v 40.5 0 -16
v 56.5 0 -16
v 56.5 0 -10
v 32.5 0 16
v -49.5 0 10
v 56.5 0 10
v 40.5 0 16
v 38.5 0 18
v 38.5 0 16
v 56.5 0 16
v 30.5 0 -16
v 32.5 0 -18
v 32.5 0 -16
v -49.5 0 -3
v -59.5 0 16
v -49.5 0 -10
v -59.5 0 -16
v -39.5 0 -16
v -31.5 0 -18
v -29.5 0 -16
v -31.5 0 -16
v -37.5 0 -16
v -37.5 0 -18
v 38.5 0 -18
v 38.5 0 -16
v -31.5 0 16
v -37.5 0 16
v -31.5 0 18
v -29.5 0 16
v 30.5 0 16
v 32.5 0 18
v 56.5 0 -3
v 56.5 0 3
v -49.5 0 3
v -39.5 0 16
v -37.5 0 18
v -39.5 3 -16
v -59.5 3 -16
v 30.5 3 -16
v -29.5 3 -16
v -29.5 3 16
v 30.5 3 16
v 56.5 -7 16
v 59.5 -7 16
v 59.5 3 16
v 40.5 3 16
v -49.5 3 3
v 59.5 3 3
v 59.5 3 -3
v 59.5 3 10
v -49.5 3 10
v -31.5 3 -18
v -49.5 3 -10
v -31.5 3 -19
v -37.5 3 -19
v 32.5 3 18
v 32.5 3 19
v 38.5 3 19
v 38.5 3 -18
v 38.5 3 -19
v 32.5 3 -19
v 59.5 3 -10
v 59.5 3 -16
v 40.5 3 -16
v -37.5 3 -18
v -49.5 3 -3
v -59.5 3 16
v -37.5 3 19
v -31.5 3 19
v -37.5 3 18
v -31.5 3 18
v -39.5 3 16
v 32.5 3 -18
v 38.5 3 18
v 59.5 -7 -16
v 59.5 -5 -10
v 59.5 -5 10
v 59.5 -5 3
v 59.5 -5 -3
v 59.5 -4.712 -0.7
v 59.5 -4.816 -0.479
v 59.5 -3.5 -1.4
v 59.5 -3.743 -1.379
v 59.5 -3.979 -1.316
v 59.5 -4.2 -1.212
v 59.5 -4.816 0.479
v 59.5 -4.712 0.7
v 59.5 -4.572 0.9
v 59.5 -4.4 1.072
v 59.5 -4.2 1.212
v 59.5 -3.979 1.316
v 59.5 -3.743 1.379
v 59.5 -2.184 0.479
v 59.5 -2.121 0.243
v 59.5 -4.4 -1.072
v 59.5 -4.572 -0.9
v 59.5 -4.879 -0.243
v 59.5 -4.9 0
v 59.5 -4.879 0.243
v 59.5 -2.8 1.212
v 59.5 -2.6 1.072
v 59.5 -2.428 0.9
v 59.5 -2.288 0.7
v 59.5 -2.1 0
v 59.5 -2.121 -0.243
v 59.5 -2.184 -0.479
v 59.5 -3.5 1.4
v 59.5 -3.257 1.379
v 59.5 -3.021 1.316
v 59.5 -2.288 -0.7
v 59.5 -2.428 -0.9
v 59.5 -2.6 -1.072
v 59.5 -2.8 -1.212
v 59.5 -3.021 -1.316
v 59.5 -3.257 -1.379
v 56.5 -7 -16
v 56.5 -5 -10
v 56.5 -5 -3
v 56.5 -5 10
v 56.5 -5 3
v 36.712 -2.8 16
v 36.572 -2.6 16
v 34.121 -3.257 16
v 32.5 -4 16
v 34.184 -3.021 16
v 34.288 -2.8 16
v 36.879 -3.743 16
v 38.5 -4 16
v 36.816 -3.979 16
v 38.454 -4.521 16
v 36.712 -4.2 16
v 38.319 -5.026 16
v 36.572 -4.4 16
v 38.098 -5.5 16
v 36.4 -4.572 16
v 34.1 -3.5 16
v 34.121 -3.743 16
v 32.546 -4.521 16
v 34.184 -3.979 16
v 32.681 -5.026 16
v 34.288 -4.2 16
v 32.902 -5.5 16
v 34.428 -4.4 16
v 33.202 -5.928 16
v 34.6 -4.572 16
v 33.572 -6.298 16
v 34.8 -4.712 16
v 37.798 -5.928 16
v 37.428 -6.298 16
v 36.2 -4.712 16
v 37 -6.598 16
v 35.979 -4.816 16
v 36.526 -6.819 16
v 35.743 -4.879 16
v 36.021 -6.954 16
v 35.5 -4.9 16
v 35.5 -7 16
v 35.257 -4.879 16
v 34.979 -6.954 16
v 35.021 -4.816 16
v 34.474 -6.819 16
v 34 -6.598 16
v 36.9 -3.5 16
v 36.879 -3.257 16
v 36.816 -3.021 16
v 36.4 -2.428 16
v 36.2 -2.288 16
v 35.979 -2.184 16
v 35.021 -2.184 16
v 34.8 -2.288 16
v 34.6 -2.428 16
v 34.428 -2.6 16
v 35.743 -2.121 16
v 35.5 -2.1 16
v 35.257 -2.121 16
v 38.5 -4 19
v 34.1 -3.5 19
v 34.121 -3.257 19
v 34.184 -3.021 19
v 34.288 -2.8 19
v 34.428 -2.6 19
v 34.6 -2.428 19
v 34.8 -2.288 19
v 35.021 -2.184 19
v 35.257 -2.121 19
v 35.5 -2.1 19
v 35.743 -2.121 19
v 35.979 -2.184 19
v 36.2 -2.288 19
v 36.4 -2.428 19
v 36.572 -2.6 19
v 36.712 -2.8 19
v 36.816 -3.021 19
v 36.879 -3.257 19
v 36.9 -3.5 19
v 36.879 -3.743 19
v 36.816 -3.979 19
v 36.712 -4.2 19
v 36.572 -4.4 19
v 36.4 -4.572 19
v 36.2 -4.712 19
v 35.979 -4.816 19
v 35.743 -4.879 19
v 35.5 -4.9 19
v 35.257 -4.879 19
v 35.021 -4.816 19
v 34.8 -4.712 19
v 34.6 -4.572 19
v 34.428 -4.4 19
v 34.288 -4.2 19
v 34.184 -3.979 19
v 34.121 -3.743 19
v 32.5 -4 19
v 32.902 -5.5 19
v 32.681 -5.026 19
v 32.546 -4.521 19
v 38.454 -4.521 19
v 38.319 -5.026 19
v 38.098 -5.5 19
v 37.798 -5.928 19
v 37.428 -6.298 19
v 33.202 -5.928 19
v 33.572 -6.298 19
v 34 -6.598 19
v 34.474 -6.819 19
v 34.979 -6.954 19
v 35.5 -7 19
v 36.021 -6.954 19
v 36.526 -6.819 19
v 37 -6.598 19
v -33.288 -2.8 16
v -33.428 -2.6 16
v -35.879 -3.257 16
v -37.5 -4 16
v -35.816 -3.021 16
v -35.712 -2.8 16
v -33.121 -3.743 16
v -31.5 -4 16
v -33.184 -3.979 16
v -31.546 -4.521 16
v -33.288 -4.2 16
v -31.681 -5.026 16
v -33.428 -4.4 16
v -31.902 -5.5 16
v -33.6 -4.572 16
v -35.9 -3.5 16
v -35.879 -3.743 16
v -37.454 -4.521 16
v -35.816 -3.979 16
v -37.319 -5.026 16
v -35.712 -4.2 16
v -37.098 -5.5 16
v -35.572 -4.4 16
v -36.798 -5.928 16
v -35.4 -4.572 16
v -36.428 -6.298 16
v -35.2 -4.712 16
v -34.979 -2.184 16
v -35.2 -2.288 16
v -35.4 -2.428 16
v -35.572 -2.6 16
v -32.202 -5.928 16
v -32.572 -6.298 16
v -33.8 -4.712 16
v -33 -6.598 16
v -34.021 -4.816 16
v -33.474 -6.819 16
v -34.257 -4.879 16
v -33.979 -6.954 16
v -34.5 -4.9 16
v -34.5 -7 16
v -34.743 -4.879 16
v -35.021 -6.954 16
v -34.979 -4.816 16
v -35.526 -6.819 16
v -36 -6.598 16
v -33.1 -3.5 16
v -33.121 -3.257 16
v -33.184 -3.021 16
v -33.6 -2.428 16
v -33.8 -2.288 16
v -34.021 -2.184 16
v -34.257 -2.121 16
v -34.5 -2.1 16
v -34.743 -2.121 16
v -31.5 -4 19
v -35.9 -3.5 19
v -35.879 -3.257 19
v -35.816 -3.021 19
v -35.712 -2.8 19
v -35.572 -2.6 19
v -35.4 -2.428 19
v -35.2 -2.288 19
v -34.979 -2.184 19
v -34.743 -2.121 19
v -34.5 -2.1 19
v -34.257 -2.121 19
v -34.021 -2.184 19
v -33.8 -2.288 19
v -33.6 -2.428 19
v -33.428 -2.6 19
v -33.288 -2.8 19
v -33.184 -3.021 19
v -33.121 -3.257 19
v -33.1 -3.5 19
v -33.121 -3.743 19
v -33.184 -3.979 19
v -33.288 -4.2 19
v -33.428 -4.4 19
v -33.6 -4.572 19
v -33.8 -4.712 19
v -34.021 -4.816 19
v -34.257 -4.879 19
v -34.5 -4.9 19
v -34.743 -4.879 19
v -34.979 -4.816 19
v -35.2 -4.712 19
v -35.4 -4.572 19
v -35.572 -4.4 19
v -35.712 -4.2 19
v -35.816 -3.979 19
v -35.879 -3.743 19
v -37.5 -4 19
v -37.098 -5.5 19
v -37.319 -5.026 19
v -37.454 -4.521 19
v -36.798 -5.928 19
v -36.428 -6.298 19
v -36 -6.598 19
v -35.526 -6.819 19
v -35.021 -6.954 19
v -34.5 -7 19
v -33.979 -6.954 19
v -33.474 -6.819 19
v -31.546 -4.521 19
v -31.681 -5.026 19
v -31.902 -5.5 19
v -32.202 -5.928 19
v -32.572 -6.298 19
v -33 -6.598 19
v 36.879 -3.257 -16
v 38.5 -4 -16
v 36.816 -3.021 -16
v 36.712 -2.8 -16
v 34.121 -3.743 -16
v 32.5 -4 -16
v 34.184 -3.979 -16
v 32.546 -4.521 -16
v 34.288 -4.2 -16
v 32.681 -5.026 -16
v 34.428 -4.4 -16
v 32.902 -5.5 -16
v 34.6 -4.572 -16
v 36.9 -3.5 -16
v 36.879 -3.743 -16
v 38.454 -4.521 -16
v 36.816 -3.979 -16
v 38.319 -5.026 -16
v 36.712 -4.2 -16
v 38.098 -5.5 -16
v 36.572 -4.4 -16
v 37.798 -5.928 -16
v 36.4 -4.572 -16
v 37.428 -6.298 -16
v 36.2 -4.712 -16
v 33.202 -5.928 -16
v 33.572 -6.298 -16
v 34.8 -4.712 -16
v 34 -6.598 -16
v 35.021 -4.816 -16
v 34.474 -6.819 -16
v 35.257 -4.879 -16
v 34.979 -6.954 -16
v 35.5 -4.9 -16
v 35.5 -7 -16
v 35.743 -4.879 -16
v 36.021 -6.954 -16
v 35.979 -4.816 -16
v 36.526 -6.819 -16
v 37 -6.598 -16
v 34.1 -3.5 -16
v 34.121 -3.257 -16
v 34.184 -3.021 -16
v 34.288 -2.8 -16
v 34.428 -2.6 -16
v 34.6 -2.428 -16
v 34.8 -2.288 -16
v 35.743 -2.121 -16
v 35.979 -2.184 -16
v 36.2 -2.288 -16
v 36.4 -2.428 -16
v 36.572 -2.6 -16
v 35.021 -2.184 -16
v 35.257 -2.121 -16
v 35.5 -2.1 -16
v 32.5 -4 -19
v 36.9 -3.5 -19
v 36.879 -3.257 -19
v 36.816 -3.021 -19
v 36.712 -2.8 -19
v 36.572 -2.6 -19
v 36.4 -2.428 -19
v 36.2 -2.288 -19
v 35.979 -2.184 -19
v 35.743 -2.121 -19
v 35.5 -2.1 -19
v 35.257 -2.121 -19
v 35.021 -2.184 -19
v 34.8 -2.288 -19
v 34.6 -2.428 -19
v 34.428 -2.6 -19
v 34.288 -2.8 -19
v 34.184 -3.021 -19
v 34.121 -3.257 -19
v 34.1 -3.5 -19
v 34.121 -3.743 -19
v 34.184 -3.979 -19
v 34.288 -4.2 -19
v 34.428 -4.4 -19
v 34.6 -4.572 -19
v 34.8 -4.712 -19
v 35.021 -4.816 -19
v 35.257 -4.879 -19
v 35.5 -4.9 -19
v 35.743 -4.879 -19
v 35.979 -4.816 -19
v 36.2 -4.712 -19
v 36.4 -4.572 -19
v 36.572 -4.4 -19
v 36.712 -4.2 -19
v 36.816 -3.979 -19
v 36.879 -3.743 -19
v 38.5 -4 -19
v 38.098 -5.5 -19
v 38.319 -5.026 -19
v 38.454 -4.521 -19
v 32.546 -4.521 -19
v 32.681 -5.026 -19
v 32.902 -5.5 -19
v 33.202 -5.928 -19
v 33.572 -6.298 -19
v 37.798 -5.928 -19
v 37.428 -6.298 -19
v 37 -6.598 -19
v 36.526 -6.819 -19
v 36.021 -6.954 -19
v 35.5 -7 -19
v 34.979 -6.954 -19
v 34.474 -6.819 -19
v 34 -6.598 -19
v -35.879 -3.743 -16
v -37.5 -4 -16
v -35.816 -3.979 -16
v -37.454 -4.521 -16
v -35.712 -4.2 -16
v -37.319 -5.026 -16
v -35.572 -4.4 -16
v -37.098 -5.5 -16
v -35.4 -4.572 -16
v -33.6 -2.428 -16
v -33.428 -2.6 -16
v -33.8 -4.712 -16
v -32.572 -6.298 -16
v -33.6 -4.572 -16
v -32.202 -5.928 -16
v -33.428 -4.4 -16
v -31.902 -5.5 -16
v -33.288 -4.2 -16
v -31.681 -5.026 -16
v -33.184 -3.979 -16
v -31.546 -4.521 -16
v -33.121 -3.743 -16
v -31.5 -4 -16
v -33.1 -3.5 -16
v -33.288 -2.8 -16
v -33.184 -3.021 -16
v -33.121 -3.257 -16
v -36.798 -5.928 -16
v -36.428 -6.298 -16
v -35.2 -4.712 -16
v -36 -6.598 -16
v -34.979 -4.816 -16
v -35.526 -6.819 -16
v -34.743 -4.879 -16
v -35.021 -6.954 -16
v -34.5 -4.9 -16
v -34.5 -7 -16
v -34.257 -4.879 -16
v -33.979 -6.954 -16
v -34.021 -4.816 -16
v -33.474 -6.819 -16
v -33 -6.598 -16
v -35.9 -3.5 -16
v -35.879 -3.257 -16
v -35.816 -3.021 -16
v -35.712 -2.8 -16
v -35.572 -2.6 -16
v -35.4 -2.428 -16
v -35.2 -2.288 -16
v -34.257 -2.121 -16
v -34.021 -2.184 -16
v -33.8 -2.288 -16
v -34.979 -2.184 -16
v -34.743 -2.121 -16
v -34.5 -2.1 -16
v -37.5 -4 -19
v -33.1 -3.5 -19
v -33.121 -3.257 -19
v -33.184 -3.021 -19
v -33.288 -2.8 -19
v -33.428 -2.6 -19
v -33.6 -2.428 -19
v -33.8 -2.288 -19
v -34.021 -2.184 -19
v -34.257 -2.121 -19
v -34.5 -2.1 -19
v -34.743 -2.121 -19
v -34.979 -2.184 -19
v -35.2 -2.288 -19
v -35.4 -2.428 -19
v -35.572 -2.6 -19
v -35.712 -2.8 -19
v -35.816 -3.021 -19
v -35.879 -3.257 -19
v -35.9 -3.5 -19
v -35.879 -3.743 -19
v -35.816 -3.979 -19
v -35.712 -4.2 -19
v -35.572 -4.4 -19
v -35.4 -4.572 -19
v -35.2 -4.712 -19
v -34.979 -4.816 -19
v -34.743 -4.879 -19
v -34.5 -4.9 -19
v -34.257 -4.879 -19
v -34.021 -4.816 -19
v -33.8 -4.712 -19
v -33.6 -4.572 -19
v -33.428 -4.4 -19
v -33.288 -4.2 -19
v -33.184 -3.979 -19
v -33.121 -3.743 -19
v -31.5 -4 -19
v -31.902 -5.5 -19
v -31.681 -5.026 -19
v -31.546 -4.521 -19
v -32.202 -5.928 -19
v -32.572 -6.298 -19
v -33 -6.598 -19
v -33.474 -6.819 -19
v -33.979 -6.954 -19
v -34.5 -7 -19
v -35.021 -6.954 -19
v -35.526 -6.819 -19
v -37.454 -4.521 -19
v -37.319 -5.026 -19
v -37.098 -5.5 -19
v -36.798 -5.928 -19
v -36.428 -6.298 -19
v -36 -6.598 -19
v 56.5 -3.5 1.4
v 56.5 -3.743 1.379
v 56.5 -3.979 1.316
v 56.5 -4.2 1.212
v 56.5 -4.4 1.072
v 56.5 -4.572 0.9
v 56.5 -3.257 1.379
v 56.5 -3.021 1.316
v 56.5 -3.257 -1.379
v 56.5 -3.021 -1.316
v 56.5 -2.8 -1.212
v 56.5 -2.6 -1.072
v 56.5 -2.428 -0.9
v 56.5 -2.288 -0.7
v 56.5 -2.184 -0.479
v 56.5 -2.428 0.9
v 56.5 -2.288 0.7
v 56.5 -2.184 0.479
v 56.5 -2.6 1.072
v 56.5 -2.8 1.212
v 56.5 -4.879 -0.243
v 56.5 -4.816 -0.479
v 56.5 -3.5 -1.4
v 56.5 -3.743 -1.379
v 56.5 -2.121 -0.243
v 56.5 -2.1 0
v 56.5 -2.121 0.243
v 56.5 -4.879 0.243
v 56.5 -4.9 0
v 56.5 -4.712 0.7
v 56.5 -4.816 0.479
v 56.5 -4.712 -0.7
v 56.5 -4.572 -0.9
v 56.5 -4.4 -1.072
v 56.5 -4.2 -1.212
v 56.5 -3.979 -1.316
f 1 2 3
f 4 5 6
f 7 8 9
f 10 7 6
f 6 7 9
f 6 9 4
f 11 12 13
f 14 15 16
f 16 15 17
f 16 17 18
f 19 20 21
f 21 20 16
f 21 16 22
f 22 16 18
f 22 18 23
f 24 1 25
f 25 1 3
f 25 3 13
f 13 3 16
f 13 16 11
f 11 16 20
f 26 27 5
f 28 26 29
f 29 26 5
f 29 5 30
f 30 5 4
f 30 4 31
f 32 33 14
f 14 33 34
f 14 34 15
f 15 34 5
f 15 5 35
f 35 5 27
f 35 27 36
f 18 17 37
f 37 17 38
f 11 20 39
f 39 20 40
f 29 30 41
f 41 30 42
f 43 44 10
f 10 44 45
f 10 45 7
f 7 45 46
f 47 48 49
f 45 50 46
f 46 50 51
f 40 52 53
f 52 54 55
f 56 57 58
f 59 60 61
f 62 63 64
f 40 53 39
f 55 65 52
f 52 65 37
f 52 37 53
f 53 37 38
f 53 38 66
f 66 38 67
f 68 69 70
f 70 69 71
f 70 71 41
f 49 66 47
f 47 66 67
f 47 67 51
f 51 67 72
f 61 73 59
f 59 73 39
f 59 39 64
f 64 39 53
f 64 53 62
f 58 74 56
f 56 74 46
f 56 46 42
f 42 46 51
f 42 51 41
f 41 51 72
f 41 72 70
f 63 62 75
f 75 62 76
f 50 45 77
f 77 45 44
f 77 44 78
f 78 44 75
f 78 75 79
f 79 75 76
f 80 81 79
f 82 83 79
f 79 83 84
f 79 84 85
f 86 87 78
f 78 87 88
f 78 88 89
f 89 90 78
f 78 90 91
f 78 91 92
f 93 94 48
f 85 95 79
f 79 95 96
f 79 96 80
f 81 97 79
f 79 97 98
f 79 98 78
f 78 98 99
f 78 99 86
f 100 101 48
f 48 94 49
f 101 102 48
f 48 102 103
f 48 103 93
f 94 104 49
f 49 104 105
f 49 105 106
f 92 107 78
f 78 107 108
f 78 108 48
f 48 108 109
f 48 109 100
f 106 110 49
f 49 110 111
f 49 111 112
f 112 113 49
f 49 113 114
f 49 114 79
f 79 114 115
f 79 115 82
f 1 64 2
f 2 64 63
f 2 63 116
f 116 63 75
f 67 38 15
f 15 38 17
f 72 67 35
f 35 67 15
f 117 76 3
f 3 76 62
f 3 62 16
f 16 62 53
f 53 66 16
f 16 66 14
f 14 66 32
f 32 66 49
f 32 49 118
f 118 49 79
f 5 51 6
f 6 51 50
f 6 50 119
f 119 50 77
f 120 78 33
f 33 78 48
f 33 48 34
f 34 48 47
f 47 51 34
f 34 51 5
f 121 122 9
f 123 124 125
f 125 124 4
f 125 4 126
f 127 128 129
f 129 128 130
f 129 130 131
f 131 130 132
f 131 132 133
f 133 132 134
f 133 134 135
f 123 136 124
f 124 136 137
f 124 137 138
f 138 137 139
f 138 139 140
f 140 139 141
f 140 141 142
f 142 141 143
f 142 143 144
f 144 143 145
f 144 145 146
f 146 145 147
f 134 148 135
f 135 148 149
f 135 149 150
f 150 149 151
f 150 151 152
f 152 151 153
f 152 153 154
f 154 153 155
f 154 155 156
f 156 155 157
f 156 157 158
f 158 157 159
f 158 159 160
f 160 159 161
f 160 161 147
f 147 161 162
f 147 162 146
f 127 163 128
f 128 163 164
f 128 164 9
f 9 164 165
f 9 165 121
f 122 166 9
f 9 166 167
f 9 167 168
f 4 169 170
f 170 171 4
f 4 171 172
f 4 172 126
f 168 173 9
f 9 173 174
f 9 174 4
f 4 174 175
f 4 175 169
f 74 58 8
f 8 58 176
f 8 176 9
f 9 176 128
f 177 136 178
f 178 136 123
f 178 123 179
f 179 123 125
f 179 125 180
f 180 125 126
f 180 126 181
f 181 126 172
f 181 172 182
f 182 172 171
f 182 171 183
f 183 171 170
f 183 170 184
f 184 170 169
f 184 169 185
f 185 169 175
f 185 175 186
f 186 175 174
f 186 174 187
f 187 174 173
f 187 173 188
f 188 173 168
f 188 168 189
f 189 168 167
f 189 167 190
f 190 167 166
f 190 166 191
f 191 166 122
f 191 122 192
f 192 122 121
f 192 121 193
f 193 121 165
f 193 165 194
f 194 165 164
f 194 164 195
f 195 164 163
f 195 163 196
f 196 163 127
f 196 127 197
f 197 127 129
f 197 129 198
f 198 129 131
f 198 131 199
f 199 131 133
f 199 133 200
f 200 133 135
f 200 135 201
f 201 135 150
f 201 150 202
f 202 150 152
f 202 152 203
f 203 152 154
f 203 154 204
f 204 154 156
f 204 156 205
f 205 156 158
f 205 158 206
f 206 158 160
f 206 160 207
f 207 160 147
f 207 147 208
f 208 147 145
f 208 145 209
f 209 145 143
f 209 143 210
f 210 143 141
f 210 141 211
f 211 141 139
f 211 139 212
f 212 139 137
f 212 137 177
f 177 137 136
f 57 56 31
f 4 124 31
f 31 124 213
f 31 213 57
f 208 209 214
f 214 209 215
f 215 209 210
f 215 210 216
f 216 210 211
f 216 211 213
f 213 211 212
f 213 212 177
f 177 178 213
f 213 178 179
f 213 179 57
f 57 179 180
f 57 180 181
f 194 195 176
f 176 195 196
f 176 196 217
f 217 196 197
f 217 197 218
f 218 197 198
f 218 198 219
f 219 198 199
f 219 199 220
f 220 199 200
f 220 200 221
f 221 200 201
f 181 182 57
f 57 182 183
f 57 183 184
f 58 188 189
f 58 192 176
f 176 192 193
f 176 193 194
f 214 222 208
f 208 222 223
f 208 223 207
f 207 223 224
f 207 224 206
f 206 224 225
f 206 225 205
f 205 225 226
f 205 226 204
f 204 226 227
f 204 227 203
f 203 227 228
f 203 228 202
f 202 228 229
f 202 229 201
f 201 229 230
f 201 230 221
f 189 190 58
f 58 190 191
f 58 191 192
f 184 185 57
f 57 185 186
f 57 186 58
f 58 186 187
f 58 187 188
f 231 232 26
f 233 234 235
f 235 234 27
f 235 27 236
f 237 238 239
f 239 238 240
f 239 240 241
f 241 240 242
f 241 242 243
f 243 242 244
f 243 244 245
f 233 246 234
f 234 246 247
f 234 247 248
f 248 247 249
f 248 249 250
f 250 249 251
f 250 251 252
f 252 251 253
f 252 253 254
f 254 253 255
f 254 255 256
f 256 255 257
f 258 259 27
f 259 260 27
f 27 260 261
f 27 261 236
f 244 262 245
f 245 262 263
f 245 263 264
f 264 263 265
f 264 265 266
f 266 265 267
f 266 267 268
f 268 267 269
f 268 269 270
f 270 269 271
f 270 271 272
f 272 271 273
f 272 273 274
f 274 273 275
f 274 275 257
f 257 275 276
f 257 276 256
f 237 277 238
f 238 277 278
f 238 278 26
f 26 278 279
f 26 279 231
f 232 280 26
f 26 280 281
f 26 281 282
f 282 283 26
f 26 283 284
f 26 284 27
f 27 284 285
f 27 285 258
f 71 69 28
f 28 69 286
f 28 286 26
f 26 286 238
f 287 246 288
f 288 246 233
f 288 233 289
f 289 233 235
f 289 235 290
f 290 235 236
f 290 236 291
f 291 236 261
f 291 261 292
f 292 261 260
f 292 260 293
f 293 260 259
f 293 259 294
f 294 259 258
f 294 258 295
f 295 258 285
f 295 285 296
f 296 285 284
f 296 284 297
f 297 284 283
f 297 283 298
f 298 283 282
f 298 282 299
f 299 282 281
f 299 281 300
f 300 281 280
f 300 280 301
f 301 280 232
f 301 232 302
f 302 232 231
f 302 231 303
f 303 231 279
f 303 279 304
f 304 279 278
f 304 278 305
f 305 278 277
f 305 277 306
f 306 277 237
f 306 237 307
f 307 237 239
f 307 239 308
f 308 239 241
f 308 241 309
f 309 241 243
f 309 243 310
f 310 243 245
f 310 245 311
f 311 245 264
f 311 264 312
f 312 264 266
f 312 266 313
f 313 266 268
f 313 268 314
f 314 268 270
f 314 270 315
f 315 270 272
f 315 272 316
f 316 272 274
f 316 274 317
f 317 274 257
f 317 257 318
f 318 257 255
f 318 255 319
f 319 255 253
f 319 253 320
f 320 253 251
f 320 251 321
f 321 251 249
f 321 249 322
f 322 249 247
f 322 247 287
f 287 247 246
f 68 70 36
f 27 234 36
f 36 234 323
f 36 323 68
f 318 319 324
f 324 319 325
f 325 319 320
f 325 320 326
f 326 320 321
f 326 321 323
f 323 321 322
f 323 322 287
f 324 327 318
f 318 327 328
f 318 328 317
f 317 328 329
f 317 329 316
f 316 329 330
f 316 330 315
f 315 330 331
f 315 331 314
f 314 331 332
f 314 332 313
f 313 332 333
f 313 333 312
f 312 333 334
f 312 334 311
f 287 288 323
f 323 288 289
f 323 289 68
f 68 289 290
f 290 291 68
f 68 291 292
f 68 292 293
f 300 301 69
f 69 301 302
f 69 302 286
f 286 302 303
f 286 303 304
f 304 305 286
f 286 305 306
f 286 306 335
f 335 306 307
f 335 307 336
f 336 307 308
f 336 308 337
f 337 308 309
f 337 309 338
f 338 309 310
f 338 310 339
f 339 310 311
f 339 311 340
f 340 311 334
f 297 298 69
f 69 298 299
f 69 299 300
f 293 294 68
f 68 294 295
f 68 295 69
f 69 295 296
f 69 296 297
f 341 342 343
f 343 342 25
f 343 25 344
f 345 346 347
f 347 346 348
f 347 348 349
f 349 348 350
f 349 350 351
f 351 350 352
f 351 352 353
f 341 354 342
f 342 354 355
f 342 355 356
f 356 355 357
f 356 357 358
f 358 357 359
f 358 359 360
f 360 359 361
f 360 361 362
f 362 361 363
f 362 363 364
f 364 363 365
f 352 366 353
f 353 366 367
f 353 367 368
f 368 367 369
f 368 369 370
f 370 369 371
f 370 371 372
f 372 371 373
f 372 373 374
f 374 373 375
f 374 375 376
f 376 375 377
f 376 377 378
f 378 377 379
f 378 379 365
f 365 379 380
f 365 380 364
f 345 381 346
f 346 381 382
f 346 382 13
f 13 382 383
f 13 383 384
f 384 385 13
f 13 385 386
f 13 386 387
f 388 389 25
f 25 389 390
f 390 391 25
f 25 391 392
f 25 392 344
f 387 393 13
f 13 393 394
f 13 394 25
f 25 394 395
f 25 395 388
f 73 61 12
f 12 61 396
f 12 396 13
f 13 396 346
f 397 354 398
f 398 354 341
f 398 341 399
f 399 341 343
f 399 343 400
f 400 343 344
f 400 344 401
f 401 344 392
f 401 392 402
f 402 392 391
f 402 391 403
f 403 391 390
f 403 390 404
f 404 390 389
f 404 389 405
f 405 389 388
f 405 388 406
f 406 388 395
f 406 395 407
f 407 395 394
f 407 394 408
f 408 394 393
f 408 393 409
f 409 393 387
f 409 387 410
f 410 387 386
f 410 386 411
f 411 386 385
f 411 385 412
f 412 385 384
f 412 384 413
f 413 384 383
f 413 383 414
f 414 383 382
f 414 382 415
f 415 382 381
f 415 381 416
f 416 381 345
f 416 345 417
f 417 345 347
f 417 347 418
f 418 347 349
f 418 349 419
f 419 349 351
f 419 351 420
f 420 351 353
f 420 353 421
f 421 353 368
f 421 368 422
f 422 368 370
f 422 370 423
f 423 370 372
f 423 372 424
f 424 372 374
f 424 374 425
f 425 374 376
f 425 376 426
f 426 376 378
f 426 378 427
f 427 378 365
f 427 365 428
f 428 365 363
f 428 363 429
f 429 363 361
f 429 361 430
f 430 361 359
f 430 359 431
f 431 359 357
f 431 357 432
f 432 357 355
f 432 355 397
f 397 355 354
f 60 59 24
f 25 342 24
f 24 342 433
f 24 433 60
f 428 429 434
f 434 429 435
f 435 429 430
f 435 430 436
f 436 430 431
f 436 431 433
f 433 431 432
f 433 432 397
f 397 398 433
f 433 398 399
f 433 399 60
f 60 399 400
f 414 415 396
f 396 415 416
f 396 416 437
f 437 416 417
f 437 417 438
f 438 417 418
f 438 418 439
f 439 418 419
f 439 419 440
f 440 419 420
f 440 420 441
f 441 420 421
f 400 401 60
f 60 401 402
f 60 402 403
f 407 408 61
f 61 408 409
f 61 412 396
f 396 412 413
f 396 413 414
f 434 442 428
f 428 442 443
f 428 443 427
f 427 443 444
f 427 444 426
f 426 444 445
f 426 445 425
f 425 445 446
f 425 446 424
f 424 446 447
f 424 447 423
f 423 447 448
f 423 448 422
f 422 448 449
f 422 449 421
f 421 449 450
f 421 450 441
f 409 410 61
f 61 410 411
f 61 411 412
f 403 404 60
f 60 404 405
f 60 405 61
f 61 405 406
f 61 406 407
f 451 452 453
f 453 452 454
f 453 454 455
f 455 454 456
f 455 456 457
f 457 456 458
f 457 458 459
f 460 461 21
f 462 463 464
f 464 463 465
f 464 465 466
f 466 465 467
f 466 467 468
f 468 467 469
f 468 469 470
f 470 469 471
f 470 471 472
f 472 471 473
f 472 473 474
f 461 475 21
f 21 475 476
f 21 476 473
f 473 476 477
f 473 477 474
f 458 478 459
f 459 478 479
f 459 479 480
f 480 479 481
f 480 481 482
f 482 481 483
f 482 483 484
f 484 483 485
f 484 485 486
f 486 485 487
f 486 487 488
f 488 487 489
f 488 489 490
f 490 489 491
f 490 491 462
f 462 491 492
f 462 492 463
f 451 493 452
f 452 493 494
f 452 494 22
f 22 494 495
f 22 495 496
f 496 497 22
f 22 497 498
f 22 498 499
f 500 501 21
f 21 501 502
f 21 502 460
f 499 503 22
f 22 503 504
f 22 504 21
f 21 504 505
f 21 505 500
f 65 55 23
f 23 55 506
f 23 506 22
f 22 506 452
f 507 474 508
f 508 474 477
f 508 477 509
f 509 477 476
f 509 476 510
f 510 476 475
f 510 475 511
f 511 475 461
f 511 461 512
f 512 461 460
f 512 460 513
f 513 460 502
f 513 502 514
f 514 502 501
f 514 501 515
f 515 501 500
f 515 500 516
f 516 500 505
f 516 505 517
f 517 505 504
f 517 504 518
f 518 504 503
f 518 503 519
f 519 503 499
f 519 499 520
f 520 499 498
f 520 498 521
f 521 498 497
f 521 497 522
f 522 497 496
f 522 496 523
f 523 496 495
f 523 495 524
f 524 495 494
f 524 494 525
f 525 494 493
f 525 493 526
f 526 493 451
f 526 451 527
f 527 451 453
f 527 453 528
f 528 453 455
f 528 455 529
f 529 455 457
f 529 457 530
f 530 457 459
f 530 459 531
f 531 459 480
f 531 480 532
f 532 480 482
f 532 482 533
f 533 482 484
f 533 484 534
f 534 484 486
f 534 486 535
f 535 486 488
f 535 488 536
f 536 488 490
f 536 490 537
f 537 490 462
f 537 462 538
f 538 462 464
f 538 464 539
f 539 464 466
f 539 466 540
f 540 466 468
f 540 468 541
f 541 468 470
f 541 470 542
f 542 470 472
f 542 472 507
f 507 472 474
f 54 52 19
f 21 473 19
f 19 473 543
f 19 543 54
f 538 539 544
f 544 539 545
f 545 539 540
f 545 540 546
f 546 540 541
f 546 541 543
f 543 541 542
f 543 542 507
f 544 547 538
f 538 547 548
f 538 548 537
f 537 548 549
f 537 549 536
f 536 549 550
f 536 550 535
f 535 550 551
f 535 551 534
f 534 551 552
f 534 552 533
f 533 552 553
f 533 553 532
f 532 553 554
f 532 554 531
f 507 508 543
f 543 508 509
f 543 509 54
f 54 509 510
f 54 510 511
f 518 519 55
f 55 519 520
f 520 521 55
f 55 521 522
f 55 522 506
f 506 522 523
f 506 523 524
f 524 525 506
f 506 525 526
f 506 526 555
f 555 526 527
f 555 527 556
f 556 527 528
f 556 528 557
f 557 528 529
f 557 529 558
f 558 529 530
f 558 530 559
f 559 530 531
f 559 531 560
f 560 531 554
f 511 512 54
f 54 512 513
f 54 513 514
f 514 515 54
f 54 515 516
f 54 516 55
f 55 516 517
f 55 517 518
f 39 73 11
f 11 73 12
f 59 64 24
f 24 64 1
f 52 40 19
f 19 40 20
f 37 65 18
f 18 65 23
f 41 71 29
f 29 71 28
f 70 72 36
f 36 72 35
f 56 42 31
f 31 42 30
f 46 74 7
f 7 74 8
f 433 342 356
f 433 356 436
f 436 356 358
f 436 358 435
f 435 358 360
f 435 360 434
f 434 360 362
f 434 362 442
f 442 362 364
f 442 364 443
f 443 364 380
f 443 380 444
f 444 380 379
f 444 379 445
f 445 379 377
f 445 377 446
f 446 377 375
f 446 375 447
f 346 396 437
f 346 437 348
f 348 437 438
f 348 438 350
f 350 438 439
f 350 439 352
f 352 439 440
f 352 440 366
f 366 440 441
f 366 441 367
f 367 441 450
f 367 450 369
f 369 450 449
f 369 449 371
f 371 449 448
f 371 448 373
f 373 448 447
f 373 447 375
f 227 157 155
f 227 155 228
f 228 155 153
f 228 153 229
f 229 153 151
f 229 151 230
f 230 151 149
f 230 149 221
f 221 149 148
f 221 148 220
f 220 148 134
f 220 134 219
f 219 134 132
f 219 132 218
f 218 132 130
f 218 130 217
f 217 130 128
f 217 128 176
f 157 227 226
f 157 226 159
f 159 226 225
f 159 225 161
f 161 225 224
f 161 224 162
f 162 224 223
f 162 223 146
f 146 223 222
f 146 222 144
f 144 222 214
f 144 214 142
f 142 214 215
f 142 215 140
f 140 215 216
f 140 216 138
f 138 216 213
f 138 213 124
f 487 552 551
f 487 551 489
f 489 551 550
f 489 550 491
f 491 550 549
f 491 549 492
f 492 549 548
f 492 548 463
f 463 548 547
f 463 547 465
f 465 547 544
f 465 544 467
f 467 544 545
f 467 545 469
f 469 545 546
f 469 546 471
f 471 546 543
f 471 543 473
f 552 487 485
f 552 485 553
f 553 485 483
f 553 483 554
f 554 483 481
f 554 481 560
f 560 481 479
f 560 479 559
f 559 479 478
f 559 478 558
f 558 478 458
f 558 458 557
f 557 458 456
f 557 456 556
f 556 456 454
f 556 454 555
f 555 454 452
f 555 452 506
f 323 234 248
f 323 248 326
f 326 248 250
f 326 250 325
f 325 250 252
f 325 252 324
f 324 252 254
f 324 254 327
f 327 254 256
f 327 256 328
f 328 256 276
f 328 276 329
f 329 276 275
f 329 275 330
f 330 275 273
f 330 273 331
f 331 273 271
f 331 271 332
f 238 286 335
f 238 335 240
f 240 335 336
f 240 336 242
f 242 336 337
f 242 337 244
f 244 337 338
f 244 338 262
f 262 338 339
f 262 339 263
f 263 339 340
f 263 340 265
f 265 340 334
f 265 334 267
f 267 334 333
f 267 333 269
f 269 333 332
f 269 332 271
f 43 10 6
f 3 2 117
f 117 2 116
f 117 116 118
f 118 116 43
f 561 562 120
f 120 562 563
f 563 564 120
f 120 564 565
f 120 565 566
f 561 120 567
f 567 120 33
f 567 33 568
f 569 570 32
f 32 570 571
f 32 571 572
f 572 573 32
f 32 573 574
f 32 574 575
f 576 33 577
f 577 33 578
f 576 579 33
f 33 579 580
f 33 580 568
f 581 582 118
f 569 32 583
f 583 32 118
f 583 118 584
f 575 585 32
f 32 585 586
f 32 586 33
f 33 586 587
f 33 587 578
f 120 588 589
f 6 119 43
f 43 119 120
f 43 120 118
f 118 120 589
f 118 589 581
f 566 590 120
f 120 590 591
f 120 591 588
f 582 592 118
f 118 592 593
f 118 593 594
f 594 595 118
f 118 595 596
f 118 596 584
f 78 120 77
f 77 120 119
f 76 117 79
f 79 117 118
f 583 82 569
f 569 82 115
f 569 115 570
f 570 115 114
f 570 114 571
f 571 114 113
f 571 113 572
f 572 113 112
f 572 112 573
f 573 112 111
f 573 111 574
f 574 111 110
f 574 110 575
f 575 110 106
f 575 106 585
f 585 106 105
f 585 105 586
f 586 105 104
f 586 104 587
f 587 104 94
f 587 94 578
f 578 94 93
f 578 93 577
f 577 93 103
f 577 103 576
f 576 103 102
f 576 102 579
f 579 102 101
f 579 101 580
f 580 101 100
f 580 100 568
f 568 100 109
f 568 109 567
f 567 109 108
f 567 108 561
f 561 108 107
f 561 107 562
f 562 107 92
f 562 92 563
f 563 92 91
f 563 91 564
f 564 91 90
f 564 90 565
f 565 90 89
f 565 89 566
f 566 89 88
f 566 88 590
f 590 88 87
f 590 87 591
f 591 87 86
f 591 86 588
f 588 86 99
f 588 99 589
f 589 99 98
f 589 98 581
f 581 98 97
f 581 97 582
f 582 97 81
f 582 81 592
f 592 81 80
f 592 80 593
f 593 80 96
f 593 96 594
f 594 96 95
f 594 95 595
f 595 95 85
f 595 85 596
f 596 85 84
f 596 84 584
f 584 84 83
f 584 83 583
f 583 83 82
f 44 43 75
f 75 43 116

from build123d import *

# Parameters (mm, degrees)
SKETCH1_W           = 119
SKETCH1_H           = 32
SKETCH1_W_2         = 105
SKETCH1_H_2         = 7
BOSS_EXTRUDE1_DEPTH = 3
SKETCH2_W           = 6
SKETCH2_H           = 7
SKETCH2_R           = 1.4
SKETCH2_H_2         = 3
BOSS_EXTRUDE2_DEPTH = 3
CHAMFER1_SIZE       = 2
FILLET1_R           = 3
SKETCH3_W           = 3
SKETCH3_H           = 11
BOSS_EXTRUDE4_DEPTH = 32
SKETCH4_W           = 4
SKETCH4_H           = 7
CUT_EXTRUDE1_DEPTH  = 8
SKETCH5_R           = 1.4
CUT_EXTRUDE2_DEPTH  = 122.008264181
SKETCH6_W           = 32
SKETCH6_H           = 4
CUT_EXTRUDE3_DEPTH  = 10


with BuildPart() as part:
    # Sketch1 → Boss-Extrude1 (new body)
    with BuildSketch(Plane(origin=(0, 0, 0), x_dir=(1, 0, 0), z_dir=(0, 1, 0))):
        Rectangle(SKETCH1_W, SKETCH1_H)
        with Locations((3, 6.5)):
            Rectangle(SKETCH1_W_2, SKETCH1_H_2, mode=Mode.SUBTRACT)
        with Locations((3, -6.5)):
            Rectangle(SKETCH1_W_2, SKETCH1_H_2, mode=Mode.SUBTRACT)
    extrude(amount=BOSS_EXTRUDE1_DEPTH)

    # Sketch2 → Boss-Extrude2 (add)
    # profile 1 of 4: a face of its own
    with BuildSketch(Plane.XY.offset(16)):
        with Locations((35.5, -3.5)):
            Rectangle(SKETCH2_W, SKETCH2_H)
        with Locations((35.5, -3.5)):
            Circle(SKETCH2_R, mode=Mode.SUBTRACT)
    # profile 2 of 4: a face of its own
    with BuildSketch(Plane.XY.offset(16)):
        with Locations((35.5, 1.5)):
            Rectangle(SKETCH2_W, SKETCH2_H_2)
    # profile 3 of 4: a face of its own
    with BuildSketch(Plane.XY.offset(16)):
        with Locations((-34.5, -3.5)):
            Rectangle(SKETCH2_W, SKETCH2_H)
        with Locations((-34.5, -3.5)):
            Circle(SKETCH2_R, mode=Mode.SUBTRACT)
    # profile 4 of 4: a face of its own
    with BuildSketch(Plane.XY.offset(16)):
        with Locations((-34.5, 1.5)):
            Rectangle(SKETCH2_W, SKETCH2_H_2)
    boss_extrude2 = extrude(amount=BOSS_EXTRUDE2_DEPTH)

    # Mirror4: Boss-Extrude2 across plane
    add(boss_extrude2.mirror(Plane.XY))

    # Chamfer1
    chamfer1_edges = [part.edges().sort_by_distance(p)[0] for p in [
        (-31.5, 1.5, -16),
        (38.5, 1.5, 16),
        (32.5, 1.5, 16),
        (-37.5, 1.5, 16),
        (-31.5, 1.5, 16),
        (32.5, 1.5, -16),
        (38.5, 1.5, -16),
        (-37.5, 1.5, -16),
    ]]
    chamfer(chamfer1_edges, length=CHAMFER1_SIZE)

    # Fillet1
    fillet1_edges = [part.edges().sort_by_distance(p)[0] for p in [
        (32.5, -7, 17.5),
        (38.5, -7, 17.5),
        (-37.5, -7, 17.5),
        (-31.5, -7, 17.5),
        (38.5, -7, -17.5),
        (32.5, -7, -17.5),
        (-31.5, -7, -17.5),
        (-37.5, -7, -17.5),
    ]]
    fillet(fillet1_edges, radius=FILLET1_R - 0.0001)  # a hair under: the kernel refuses the full size

    # Sketch3 → Boss-Extrude4 (add)
    with BuildSketch(Plane(origin=(0, 0, -16), x_dir=(-1, 0, 0), z_dir=(0, 0, -1))):
        with Locations((-58, -5.5)):
            Rectangle(SKETCH3_W, SKETCH3_H)
    extrude(amount=-BOSS_EXTRUDE4_DEPTH)

    # Sketch4 → Cut-Extrude1 (cut)
    with BuildSketch(Plane(origin=(0, 3, 0), x_dir=(1, 0, 0), z_dir=(0, 1, 0))):
        with Locations((57.5, 6.5)):
            Rectangle(SKETCH4_W, SKETCH4_H)
        with Locations((57.5, -6.5)):
            Rectangle(SKETCH4_W, SKETCH4_H)
    extrude(amount=-CUT_EXTRUDE1_DEPTH, mode=Mode.SUBTRACT)

    # Sketch5 → Cut-Extrude2 (cut, through all)
    with BuildSketch(Plane(origin=(59.5, 0, 0), x_dir=(0, 0, -1), z_dir=(1, 0, 0))):
        with Locations((0, -3.5)):
            Circle(SKETCH5_R)
    extrude(amount=-CUT_EXTRUDE2_DEPTH, mode=Mode.SUBTRACT)

    # Sketch6 → Cut-Extrude3 (cut)
    with BuildSketch(Plane(origin=(59.5, 0, 0), x_dir=(0, 0, -1), z_dir=(1, 0, 0))):
        with Locations((0, -9)):
            Rectangle(SKETCH6_W, SKETCH6_H)
    extrude(amount=-CUT_EXTRUDE3_DEPTH, mode=Mode.SUBTRACT)


solid = part.part
